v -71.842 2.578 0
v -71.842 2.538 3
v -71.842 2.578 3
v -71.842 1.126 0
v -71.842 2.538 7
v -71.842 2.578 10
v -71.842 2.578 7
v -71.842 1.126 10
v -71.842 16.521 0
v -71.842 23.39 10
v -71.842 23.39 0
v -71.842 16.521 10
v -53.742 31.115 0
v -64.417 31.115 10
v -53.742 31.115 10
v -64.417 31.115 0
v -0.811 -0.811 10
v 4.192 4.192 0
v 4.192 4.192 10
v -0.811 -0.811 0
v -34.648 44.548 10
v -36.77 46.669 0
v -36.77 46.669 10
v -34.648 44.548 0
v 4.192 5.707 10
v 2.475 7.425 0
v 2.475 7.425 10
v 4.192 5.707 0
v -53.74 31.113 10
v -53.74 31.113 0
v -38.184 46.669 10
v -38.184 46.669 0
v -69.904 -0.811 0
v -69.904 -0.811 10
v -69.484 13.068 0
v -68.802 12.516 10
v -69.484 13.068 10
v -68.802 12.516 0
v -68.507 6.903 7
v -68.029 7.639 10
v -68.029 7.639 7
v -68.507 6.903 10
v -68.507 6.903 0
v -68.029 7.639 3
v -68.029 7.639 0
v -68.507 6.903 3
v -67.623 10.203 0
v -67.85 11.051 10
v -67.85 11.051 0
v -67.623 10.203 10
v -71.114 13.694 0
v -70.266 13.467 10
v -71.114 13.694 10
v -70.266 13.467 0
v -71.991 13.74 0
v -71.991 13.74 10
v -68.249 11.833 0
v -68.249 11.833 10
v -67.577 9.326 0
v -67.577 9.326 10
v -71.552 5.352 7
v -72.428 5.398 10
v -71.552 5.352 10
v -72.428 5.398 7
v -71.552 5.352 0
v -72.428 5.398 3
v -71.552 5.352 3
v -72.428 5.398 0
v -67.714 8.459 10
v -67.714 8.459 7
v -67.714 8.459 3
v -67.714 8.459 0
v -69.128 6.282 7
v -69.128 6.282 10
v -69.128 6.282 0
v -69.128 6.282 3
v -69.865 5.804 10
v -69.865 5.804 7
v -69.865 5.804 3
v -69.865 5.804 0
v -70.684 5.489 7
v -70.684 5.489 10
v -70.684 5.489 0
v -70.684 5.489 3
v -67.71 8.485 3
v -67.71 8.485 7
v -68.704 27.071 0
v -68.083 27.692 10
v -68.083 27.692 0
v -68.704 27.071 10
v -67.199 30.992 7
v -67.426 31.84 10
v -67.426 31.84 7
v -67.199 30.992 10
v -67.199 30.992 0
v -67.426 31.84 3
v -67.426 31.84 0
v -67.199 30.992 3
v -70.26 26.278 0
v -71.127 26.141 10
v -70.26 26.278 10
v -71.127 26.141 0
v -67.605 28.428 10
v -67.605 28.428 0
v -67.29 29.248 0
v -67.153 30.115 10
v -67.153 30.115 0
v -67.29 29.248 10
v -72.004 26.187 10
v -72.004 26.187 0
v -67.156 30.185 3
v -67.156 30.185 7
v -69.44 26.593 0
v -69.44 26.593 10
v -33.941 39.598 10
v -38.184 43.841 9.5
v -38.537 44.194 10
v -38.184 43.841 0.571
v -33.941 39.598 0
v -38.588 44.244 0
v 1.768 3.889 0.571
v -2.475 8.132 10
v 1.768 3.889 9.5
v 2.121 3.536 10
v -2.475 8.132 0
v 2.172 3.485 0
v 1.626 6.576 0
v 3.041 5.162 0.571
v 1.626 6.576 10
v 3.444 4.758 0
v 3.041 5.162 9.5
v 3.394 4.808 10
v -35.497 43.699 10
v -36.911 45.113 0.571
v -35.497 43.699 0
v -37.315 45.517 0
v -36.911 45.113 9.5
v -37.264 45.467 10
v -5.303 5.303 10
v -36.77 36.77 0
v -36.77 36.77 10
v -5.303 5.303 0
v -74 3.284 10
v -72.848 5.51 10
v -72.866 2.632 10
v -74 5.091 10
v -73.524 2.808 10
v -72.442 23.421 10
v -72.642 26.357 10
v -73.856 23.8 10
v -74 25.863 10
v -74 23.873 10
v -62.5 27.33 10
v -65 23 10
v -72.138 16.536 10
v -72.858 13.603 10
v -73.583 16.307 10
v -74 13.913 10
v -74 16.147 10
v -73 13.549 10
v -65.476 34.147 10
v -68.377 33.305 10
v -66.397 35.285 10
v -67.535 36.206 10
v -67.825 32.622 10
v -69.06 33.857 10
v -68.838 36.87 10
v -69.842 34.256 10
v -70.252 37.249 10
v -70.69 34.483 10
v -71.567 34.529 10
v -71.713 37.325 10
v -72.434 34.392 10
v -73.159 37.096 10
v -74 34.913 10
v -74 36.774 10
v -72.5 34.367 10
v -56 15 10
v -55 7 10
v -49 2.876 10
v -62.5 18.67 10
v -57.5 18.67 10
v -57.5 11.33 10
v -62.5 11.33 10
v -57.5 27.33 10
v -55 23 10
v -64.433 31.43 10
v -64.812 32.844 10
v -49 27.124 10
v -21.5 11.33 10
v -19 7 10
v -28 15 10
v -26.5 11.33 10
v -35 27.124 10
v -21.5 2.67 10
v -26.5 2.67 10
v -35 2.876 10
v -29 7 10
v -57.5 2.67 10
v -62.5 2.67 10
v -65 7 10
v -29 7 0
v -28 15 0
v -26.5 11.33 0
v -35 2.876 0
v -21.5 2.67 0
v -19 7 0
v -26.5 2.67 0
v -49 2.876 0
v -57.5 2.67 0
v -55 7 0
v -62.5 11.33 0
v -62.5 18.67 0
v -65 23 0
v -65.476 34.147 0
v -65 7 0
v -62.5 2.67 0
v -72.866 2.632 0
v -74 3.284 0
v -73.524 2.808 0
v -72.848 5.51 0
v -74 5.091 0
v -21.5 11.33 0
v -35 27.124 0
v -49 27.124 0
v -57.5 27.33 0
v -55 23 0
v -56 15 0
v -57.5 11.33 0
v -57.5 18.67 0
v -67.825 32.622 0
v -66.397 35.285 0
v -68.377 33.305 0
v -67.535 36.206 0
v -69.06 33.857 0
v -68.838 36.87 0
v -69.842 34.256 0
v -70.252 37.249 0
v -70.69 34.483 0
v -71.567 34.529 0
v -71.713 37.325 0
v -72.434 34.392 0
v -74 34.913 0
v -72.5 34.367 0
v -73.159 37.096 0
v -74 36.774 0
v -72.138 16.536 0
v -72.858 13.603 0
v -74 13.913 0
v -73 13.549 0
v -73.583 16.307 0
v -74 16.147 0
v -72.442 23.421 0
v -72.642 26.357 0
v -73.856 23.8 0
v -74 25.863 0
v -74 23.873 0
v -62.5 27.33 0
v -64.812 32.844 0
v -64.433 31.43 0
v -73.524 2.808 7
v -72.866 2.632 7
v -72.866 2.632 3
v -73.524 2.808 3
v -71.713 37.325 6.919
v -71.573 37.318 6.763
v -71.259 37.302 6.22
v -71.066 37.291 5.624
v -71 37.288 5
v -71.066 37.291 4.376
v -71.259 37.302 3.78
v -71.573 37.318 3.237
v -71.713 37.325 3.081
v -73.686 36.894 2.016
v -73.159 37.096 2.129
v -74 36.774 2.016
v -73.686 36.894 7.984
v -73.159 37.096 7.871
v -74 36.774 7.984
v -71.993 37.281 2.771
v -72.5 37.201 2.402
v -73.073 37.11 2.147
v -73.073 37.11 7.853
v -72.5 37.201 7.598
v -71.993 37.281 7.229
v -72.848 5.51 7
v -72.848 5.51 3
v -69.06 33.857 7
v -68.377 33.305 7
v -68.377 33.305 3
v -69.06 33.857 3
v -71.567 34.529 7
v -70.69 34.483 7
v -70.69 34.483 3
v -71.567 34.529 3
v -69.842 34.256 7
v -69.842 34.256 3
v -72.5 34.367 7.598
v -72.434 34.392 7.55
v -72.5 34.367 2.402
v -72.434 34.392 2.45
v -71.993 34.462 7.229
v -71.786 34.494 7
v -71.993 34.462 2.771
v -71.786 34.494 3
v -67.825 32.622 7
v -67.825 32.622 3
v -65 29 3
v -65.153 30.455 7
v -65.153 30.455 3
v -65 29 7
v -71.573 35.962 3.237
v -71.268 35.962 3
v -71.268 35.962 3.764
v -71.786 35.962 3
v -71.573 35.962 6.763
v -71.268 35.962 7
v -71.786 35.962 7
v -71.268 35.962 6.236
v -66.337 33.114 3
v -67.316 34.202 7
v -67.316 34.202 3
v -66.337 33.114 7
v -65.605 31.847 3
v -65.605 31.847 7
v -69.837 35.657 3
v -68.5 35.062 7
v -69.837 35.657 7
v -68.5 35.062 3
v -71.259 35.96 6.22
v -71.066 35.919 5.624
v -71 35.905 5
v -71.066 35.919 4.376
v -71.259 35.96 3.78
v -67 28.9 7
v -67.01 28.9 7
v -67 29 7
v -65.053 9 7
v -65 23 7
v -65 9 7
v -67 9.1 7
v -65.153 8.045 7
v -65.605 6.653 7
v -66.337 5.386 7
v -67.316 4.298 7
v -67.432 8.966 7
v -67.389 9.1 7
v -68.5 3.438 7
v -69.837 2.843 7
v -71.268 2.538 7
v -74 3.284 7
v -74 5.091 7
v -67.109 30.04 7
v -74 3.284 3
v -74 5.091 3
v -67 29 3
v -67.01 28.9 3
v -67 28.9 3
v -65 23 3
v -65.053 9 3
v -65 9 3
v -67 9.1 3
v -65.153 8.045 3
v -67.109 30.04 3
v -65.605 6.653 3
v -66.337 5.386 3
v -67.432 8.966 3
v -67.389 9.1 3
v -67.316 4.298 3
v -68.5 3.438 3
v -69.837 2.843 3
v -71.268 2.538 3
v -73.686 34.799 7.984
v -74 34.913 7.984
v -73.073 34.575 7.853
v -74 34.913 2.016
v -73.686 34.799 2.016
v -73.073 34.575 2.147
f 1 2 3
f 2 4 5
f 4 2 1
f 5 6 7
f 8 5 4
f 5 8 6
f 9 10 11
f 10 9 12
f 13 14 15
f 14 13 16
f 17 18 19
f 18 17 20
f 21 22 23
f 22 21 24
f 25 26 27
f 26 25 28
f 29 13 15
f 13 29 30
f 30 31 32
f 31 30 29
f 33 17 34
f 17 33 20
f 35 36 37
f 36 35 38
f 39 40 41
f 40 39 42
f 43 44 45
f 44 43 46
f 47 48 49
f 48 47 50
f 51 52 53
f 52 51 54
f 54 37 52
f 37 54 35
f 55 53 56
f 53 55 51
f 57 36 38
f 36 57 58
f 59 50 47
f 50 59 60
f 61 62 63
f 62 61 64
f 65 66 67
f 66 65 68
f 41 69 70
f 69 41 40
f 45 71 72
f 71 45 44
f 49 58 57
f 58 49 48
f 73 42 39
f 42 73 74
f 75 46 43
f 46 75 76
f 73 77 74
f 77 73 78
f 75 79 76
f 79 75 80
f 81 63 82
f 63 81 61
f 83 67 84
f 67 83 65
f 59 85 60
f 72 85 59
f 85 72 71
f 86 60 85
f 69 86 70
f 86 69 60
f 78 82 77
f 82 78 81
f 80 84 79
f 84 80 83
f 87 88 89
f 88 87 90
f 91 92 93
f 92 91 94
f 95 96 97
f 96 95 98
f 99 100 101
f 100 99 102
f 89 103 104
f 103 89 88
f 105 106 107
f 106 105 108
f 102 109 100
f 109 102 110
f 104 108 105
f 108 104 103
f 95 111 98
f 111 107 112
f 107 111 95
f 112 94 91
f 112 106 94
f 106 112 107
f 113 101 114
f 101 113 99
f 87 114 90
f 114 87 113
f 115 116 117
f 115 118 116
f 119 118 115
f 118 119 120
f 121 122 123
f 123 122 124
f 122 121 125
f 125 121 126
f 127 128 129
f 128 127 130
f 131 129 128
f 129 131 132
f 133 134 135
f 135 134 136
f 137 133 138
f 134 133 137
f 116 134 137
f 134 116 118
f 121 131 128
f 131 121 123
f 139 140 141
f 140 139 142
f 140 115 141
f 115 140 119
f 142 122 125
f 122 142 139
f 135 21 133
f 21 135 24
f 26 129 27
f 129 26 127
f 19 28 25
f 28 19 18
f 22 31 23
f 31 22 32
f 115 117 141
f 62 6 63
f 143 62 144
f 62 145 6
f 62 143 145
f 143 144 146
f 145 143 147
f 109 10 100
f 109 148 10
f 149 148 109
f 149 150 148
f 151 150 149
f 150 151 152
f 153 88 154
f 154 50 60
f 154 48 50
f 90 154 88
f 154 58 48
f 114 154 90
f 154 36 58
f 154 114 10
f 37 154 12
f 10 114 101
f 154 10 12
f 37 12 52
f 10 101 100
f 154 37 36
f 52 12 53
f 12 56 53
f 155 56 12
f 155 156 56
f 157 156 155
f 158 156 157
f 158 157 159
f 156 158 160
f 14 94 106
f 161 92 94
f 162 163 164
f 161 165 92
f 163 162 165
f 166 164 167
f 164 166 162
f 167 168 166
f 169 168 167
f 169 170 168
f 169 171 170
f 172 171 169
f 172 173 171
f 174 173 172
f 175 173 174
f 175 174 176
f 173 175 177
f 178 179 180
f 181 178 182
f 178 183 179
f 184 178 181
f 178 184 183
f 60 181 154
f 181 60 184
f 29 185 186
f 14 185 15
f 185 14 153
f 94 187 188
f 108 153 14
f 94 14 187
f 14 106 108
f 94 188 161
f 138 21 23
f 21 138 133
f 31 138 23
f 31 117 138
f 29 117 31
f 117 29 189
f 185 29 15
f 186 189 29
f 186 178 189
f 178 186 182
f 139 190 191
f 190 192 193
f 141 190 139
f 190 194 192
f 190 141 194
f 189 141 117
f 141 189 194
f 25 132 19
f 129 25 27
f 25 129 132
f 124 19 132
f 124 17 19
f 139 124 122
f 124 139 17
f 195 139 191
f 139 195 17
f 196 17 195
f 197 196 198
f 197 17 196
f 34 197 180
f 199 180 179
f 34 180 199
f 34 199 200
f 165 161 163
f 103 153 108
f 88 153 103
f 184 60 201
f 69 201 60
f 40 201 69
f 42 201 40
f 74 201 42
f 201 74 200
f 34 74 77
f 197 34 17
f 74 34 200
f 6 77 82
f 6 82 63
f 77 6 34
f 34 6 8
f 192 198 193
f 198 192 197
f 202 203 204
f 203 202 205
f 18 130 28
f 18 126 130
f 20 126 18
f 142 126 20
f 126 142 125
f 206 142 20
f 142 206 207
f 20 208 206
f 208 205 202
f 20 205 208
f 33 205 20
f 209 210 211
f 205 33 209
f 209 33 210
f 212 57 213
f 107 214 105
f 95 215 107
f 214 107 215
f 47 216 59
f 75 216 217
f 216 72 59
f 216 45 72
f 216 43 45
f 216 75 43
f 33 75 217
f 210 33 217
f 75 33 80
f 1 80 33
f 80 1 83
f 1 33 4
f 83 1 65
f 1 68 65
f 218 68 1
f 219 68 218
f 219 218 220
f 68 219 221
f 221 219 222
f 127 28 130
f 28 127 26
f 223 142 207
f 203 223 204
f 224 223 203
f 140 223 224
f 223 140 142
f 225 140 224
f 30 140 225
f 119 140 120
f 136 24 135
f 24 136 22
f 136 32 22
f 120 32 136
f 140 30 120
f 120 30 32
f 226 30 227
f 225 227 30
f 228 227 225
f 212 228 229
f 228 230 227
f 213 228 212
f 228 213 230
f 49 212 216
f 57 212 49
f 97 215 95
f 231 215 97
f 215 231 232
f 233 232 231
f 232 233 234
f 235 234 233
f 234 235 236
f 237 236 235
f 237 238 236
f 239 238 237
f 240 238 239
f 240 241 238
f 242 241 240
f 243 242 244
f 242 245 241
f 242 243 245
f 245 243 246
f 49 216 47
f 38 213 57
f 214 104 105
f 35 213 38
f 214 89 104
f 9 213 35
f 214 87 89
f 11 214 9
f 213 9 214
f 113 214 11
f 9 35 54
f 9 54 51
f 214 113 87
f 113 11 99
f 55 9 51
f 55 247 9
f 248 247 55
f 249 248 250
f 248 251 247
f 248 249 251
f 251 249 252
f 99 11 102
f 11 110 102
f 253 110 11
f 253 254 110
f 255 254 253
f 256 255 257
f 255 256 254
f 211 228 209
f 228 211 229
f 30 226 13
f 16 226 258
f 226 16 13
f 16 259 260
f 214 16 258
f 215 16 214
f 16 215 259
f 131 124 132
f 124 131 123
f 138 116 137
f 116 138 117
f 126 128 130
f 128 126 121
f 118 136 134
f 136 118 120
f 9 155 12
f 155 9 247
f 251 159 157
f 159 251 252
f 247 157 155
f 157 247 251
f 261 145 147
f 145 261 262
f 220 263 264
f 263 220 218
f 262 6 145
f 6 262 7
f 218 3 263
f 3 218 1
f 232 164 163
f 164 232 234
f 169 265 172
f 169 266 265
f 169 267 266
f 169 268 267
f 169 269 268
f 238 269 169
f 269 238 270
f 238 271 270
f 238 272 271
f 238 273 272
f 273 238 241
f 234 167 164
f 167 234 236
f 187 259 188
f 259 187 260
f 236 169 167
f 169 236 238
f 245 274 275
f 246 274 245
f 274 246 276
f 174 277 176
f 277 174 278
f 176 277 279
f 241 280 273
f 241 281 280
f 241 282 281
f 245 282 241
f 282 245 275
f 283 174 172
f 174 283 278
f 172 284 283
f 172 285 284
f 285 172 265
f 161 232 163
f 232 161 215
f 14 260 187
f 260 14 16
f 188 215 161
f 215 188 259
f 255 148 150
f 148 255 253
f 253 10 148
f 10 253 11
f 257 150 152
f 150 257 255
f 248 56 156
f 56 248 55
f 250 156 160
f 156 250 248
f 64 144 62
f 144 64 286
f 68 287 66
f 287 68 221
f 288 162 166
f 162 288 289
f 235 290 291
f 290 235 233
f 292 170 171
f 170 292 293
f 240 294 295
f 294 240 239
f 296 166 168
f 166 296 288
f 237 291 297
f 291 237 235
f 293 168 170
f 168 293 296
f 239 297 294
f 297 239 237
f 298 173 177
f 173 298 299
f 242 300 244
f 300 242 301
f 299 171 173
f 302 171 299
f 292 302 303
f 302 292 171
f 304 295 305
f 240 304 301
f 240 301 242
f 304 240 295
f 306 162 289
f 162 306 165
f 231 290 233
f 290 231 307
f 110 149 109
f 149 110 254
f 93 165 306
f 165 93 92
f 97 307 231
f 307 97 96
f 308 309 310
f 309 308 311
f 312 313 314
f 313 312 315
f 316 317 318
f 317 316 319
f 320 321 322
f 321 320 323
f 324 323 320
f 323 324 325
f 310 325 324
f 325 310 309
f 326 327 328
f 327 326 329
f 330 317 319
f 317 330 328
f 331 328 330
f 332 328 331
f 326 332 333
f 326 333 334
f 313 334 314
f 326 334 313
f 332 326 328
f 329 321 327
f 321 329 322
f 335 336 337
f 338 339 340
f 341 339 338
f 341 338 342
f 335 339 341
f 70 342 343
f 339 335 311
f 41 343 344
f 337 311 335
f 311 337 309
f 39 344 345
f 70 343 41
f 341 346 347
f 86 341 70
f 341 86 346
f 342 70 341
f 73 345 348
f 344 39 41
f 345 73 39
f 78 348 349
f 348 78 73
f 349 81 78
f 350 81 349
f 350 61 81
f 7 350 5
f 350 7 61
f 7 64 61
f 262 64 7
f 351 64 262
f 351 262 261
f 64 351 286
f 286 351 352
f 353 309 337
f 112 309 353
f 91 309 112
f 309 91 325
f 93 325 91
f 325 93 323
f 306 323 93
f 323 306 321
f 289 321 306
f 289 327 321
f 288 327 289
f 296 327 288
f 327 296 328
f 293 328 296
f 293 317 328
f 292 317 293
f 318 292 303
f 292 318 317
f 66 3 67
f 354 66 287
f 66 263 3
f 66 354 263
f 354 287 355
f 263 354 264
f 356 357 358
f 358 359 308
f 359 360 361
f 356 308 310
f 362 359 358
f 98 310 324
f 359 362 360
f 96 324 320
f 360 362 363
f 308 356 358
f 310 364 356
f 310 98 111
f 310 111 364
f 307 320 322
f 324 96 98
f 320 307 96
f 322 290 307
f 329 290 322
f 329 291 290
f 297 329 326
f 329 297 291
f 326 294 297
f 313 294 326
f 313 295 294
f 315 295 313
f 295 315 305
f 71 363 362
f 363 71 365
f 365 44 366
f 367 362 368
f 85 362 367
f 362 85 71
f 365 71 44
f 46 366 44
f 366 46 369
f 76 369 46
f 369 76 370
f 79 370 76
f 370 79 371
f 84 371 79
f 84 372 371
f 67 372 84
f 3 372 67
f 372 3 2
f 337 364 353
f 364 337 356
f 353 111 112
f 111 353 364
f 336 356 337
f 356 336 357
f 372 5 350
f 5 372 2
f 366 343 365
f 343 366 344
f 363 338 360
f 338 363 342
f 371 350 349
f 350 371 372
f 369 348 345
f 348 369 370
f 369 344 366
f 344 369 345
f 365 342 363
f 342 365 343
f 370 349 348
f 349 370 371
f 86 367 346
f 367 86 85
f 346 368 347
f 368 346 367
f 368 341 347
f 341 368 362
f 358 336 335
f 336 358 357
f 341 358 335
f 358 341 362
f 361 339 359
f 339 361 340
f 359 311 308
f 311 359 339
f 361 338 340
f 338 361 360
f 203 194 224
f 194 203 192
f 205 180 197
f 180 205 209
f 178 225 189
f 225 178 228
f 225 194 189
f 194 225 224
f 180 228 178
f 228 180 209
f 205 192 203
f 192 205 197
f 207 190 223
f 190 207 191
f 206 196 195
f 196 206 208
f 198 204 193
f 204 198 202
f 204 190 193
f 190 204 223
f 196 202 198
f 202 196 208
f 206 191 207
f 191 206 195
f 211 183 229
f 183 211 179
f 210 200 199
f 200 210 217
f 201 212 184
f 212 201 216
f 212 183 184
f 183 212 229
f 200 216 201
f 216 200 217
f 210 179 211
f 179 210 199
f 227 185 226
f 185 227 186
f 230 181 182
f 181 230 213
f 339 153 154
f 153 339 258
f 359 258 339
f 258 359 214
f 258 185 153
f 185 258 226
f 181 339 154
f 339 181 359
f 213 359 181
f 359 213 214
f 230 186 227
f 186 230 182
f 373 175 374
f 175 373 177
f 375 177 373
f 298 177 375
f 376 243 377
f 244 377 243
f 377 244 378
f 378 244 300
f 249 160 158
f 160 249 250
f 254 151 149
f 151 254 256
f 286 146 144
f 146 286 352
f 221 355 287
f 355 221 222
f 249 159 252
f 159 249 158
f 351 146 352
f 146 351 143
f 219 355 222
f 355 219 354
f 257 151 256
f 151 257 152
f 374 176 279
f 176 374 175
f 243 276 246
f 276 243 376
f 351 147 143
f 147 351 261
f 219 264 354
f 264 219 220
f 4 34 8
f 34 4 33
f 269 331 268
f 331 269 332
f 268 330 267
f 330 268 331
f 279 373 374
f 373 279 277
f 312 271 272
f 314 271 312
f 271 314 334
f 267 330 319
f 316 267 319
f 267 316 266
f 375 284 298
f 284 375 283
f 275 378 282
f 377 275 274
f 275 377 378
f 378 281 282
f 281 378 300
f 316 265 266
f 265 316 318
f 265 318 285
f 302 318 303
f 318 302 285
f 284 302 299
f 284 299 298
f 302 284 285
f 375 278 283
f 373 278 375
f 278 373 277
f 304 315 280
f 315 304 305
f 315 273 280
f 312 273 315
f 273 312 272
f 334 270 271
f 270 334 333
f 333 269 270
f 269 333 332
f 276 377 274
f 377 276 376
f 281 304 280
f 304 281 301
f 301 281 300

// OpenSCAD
// PRUSA iteration3
// lcd-support-A
// GNU GPL v3
// Josef Průša <iam@josefprusa.cz> and contributors
// http://www.reprap.org/wiki/Prusa_Mendel
// http://prusamendel.org




module body(){

difference() {
    
    union(){
        translate( [ -55, -2 , 0 ] ) cube( [ 69 , 81 , 10 ] ); 
    }
    
    union (){

    // outer body shape
    translate( [ -69.6, 32, -1 ] ) rotate([0,0,45]) cube( [ 60 , 53 , 15 ] ); 
    translate( [ 13.7, 89.7, -1 ] ) rotate([0,0,135]) cube( [ 60 , 42 , 15 ] );
    translate( [ -19, -9, -1 ] ) cube( [ 60 , 9 , 15 ] );   
    translate( [ 7, -3, -1 ] ) cube( [ 60 , 68 , 16 ] );  
    translate( [ -16, 60, -1 ] ) cube( [ 60 , 50 , 15 ] );
    translate( [ -41, -45, -1 ] ) rotate([0,0,45]) cube( [ 60 , 80 , 13 ] );  
        
    // threaded rods opening
    translate( [ -44 , 57.5 , -1 ] ) cylinder( h = 17, r = 4.2, $fn=30);  
    translate( [ -29 , 71.9 , -1 ] ) cylinder( h = 17, r = 4.2, $fn=30);  

    // pcb cout out
    translate( [ 4 , 1.5 , -1 ] ) cube( [ 1.8 , 56.5 , 17 ] ); 
    translate( [ 0 , 7.5 , -1 ] ) cube( [ 5.8 , 44.5 , 17 ] ); 
    translate( [ 4.8 , 3.5 , -1 ] ) cube( [ 5.8 , 52.5 , 17 ] );

    translate( [ 8 , -5 , -1 ] ) rotate([0,0,45]) cube( [ 5 , 5 , 17 ] );
    translate( [ 8 , 58 , -1 ] ) rotate([0,0,45]) cube( [ 5 , 5 , 17 ] );
        
    }

    // pcb inserts
    translate( [ 4, 3 , 8 ] ) rotate([45,0,0]) cube( [ 1.8 , 5 , 5 ] ); 
    translate( [ 4, 56.5 , 8 ] ) rotate([45,0,0]) cube( [ 1.8 , 5 , 5 ] );     
    translate( [ 4, 3 , -5 ] ) rotate([45,0,0]) cube( [ 1.8 , 5 , 5 ] ); 
    translate( [ 4, 56.5 , -5 ] ) rotate([45,0,0]) cube( [ 1.8 , 5 , 5 ] );     
    
}

 
difference(){
    union(){
        translate( [ -44 , 57.5 , 0 ] ) cylinder( h = 10, r = 7, $fn=30); 
        translate( [ -29 , 71.9 , 0 ] ) cylinder( h = 10, r =7 , $fn=30); 
    }
        translate( [ -44 , 57.5 , -1 ] ) cylinder( h = 17, r = 4.2, $fn=30);
        translate( [ -29 , 71.9 , -1 ] ) cylinder( h = 17, r = 4.2, $fn=30);
}
}



module ziptie()
{
difference()
{
  union(){
    difference(){
        translate( [ -72 , 29 , 3 ] ) cylinder( h = 4, r = 7, $fn=30);
        translate( [ -72 , 29 , 3 ] ) cylinder( h = 4, r = 5, $fn=30);
    }
    difference(){
        translate( [ -72 , 9.5 , 3 ] ) cylinder( h = 4, r = 7, $fn=30);
        translate( [ -72 , 11 , 3 ] ) cylinder( h = 4, r = 5, $fn=30); 
    }
    }
    translate( [ -80 , 9.1 , 3 ] )  cube( [ 15 , 19.8 , 4 ] );  
    }
    
    translate( [ -67 , 9 , 3 ] )  cube( [ 2 , 20 , 4 ] ); 
}
    




difference() {
    
rotate([0,0,45]) body();

// lightening holes
translate( [ -42 , 15 , -1 ] ) cylinder( h = 15, r = 14, $fn=6);  
translate( [ -24 , 7 , -1 ] ) cylinder( h = 15, r = 5, $fn=6);  
translate( [ -60 , 7 , -1 ] ) cylinder( h = 15, r = 5, $fn=6);  
translate( [ -60 , 23 , -1 ] ) cylinder( h = 15, r = 5, $fn=6);  
    
// threaded rods corners
translate( [ -71 , 28.5 , -1 ] ) rotate([0,0,70]) cube( [ 5 , 10 , 15 ] );   
translate( [ -71 , 7.5 , -1 ] ) rotate([0,0,70]) cube( [ 5 , 10 , 15 ] );      
translate( [ -80 , 29, -1 ] ) rotate([0,0,-70]) cube( [ 5 , 10 , 15 ] );   
translate( [ -82 , 7.5 , -1 ] ) rotate([0,0,-70]) cube( [ 5 , 10 , 15 ] );      
translate( [ -86 , 0 , -1 ] ) cube( [ 12 , 50 , 15 ] );  
translate( [ -83 , -16 , -1 ] ) rotate([0,0,45]) cube( [ 20 , 20 , 15 ] );  

ziptie();
// ziptie head cutout
translate( [ -74 , 38 , 5 ] ) rotate([90,0,0]) cylinder( h = 5, r = 3, $fn=30);  
    


}
